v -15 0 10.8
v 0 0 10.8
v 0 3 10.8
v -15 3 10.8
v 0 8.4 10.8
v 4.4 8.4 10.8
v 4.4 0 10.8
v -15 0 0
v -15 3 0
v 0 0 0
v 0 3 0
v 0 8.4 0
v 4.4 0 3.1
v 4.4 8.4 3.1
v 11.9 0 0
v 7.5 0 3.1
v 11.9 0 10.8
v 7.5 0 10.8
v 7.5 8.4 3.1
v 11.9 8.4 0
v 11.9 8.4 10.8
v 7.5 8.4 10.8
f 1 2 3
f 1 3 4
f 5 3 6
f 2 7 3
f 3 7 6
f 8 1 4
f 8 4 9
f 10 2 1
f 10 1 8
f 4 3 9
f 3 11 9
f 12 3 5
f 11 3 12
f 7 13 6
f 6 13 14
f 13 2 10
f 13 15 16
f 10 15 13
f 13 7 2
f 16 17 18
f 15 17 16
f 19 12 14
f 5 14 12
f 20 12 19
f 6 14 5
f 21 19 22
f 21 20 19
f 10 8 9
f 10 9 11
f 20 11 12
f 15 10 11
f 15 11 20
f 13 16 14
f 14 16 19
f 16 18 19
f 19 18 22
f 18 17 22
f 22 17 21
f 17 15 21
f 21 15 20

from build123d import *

# Parameters (mm, degrees)
SKETCH001_W  = 15
SKETCH001_H  = 10.8
PAD_DEPTH    = 3
PAD001_DEPTH = 8.4


with BuildPart() as part:
    # Sketch001 → Pad (new body)
    with BuildSketch(Plane.XZ):
        with Locations((-7.5, 5.4)):
            Rectangle(SKETCH001_W, SKETCH001_H)
    extrude(amount=-PAD_DEPTH)

    # Sketch → Pad001 (join)
    with BuildSketch(Plane.XZ):
        Polygon((0, 0), (0, 10.8), (4.4, 10.8), (4.4, 3.1), (7.5, 3.1), (7.5, 10.8), (11.9, 10.8), (11.9, 0), align=None)
    extrude(amount=-PAD001_DEPTH)


solid = part.part
